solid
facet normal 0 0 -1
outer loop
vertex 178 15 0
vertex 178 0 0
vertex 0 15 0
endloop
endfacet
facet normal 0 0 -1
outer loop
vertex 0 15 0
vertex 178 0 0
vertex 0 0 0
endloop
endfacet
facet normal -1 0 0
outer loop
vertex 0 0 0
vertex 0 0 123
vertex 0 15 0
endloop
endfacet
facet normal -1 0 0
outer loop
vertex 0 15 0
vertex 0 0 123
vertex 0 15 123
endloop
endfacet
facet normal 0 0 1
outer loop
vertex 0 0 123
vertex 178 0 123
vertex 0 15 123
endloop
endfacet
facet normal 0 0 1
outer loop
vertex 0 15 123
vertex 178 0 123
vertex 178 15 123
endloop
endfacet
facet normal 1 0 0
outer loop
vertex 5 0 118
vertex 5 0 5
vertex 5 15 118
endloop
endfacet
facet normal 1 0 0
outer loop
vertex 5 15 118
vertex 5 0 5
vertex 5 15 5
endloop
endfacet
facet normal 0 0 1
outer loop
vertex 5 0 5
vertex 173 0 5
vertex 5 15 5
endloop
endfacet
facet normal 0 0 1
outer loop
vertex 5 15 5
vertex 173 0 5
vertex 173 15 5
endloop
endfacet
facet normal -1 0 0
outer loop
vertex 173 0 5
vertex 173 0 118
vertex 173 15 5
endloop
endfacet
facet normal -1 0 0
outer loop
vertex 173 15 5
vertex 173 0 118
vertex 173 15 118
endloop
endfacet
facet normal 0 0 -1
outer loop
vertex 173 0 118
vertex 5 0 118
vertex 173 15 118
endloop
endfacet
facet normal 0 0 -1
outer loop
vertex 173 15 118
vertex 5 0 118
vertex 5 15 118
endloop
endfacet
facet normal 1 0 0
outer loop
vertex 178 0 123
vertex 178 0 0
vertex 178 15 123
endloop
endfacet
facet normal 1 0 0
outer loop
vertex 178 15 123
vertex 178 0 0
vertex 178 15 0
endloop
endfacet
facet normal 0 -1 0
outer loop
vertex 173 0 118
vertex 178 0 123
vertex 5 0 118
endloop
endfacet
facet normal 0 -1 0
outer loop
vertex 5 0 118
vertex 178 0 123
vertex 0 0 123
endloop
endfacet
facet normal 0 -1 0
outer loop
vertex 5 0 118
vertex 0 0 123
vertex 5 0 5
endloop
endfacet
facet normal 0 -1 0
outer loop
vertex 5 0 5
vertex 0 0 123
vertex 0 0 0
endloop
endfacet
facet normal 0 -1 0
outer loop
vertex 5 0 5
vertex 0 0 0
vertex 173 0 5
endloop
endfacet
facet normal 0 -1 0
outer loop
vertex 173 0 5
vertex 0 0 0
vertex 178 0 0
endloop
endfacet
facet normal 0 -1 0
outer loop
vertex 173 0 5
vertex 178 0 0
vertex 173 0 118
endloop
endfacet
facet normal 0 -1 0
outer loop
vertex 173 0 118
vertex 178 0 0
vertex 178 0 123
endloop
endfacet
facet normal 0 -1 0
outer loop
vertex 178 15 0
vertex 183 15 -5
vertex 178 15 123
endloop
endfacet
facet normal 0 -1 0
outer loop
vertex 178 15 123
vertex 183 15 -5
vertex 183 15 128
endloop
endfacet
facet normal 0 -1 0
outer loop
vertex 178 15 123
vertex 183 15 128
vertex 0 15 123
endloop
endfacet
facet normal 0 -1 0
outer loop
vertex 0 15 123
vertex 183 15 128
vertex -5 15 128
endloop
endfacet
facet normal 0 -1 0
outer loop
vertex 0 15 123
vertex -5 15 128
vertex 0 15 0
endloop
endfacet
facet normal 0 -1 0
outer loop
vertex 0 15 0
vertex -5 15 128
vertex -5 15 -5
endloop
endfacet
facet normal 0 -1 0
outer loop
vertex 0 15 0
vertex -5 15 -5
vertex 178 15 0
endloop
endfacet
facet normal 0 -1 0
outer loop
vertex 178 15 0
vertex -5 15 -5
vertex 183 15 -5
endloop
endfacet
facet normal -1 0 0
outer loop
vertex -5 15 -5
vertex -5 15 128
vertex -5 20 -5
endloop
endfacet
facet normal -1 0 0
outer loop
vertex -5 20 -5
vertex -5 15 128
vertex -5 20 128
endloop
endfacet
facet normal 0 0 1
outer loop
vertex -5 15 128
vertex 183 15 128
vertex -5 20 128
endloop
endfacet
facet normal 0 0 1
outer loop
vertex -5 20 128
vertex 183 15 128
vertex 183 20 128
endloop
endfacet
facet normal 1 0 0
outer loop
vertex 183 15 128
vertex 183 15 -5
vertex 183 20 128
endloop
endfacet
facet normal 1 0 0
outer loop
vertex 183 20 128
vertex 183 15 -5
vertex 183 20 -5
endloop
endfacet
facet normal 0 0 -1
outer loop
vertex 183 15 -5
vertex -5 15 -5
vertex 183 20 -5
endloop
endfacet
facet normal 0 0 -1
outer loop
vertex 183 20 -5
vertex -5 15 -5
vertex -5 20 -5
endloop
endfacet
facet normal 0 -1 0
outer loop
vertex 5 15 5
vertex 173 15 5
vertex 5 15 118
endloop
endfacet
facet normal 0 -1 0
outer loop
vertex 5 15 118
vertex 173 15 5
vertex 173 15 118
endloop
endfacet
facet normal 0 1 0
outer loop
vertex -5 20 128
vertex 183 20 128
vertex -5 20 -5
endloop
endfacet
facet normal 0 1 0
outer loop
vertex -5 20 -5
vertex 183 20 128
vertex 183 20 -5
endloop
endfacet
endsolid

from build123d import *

# Parameters (mm, degrees)
SKETCH1_W           = 168
SKETCH1_H           = 113
BOSS_EXTRUDE1_DEPTH = 20
BOSS_EXTRUDE4_DEPTH = 5


with BuildPart() as part:
    # Sketch1 → Boss-Extrude1 (new body)
    with BuildSketch(Plane(origin=(0, 0, 0), x_dir=(1, 0, 0), z_dir=(0, 1, 0))):
        Polygon((178, 0), (0, 0), (0, -5), (0, -123), (178, -123), align=None)
        with Locations((89, -61.5)):
            Rectangle(SKETCH1_W, SKETCH1_H, mode=Mode.SUBTRACT)
    extrude(amount=BOSS_EXTRUDE1_DEPTH)

    # Sketch2 → Boss-Extrude4 (add)
    with BuildSketch(Plane(origin=(0, 20, 0), x_dir=(1, 0, 0), z_dir=(0, 1, 0))):
        Polygon((183, 5), (0, 5), (-5, 5), (-5, -128), (183, -128), align=None)
    extrude(amount=-BOSS_EXTRUDE4_DEPTH)


solid = part.part
